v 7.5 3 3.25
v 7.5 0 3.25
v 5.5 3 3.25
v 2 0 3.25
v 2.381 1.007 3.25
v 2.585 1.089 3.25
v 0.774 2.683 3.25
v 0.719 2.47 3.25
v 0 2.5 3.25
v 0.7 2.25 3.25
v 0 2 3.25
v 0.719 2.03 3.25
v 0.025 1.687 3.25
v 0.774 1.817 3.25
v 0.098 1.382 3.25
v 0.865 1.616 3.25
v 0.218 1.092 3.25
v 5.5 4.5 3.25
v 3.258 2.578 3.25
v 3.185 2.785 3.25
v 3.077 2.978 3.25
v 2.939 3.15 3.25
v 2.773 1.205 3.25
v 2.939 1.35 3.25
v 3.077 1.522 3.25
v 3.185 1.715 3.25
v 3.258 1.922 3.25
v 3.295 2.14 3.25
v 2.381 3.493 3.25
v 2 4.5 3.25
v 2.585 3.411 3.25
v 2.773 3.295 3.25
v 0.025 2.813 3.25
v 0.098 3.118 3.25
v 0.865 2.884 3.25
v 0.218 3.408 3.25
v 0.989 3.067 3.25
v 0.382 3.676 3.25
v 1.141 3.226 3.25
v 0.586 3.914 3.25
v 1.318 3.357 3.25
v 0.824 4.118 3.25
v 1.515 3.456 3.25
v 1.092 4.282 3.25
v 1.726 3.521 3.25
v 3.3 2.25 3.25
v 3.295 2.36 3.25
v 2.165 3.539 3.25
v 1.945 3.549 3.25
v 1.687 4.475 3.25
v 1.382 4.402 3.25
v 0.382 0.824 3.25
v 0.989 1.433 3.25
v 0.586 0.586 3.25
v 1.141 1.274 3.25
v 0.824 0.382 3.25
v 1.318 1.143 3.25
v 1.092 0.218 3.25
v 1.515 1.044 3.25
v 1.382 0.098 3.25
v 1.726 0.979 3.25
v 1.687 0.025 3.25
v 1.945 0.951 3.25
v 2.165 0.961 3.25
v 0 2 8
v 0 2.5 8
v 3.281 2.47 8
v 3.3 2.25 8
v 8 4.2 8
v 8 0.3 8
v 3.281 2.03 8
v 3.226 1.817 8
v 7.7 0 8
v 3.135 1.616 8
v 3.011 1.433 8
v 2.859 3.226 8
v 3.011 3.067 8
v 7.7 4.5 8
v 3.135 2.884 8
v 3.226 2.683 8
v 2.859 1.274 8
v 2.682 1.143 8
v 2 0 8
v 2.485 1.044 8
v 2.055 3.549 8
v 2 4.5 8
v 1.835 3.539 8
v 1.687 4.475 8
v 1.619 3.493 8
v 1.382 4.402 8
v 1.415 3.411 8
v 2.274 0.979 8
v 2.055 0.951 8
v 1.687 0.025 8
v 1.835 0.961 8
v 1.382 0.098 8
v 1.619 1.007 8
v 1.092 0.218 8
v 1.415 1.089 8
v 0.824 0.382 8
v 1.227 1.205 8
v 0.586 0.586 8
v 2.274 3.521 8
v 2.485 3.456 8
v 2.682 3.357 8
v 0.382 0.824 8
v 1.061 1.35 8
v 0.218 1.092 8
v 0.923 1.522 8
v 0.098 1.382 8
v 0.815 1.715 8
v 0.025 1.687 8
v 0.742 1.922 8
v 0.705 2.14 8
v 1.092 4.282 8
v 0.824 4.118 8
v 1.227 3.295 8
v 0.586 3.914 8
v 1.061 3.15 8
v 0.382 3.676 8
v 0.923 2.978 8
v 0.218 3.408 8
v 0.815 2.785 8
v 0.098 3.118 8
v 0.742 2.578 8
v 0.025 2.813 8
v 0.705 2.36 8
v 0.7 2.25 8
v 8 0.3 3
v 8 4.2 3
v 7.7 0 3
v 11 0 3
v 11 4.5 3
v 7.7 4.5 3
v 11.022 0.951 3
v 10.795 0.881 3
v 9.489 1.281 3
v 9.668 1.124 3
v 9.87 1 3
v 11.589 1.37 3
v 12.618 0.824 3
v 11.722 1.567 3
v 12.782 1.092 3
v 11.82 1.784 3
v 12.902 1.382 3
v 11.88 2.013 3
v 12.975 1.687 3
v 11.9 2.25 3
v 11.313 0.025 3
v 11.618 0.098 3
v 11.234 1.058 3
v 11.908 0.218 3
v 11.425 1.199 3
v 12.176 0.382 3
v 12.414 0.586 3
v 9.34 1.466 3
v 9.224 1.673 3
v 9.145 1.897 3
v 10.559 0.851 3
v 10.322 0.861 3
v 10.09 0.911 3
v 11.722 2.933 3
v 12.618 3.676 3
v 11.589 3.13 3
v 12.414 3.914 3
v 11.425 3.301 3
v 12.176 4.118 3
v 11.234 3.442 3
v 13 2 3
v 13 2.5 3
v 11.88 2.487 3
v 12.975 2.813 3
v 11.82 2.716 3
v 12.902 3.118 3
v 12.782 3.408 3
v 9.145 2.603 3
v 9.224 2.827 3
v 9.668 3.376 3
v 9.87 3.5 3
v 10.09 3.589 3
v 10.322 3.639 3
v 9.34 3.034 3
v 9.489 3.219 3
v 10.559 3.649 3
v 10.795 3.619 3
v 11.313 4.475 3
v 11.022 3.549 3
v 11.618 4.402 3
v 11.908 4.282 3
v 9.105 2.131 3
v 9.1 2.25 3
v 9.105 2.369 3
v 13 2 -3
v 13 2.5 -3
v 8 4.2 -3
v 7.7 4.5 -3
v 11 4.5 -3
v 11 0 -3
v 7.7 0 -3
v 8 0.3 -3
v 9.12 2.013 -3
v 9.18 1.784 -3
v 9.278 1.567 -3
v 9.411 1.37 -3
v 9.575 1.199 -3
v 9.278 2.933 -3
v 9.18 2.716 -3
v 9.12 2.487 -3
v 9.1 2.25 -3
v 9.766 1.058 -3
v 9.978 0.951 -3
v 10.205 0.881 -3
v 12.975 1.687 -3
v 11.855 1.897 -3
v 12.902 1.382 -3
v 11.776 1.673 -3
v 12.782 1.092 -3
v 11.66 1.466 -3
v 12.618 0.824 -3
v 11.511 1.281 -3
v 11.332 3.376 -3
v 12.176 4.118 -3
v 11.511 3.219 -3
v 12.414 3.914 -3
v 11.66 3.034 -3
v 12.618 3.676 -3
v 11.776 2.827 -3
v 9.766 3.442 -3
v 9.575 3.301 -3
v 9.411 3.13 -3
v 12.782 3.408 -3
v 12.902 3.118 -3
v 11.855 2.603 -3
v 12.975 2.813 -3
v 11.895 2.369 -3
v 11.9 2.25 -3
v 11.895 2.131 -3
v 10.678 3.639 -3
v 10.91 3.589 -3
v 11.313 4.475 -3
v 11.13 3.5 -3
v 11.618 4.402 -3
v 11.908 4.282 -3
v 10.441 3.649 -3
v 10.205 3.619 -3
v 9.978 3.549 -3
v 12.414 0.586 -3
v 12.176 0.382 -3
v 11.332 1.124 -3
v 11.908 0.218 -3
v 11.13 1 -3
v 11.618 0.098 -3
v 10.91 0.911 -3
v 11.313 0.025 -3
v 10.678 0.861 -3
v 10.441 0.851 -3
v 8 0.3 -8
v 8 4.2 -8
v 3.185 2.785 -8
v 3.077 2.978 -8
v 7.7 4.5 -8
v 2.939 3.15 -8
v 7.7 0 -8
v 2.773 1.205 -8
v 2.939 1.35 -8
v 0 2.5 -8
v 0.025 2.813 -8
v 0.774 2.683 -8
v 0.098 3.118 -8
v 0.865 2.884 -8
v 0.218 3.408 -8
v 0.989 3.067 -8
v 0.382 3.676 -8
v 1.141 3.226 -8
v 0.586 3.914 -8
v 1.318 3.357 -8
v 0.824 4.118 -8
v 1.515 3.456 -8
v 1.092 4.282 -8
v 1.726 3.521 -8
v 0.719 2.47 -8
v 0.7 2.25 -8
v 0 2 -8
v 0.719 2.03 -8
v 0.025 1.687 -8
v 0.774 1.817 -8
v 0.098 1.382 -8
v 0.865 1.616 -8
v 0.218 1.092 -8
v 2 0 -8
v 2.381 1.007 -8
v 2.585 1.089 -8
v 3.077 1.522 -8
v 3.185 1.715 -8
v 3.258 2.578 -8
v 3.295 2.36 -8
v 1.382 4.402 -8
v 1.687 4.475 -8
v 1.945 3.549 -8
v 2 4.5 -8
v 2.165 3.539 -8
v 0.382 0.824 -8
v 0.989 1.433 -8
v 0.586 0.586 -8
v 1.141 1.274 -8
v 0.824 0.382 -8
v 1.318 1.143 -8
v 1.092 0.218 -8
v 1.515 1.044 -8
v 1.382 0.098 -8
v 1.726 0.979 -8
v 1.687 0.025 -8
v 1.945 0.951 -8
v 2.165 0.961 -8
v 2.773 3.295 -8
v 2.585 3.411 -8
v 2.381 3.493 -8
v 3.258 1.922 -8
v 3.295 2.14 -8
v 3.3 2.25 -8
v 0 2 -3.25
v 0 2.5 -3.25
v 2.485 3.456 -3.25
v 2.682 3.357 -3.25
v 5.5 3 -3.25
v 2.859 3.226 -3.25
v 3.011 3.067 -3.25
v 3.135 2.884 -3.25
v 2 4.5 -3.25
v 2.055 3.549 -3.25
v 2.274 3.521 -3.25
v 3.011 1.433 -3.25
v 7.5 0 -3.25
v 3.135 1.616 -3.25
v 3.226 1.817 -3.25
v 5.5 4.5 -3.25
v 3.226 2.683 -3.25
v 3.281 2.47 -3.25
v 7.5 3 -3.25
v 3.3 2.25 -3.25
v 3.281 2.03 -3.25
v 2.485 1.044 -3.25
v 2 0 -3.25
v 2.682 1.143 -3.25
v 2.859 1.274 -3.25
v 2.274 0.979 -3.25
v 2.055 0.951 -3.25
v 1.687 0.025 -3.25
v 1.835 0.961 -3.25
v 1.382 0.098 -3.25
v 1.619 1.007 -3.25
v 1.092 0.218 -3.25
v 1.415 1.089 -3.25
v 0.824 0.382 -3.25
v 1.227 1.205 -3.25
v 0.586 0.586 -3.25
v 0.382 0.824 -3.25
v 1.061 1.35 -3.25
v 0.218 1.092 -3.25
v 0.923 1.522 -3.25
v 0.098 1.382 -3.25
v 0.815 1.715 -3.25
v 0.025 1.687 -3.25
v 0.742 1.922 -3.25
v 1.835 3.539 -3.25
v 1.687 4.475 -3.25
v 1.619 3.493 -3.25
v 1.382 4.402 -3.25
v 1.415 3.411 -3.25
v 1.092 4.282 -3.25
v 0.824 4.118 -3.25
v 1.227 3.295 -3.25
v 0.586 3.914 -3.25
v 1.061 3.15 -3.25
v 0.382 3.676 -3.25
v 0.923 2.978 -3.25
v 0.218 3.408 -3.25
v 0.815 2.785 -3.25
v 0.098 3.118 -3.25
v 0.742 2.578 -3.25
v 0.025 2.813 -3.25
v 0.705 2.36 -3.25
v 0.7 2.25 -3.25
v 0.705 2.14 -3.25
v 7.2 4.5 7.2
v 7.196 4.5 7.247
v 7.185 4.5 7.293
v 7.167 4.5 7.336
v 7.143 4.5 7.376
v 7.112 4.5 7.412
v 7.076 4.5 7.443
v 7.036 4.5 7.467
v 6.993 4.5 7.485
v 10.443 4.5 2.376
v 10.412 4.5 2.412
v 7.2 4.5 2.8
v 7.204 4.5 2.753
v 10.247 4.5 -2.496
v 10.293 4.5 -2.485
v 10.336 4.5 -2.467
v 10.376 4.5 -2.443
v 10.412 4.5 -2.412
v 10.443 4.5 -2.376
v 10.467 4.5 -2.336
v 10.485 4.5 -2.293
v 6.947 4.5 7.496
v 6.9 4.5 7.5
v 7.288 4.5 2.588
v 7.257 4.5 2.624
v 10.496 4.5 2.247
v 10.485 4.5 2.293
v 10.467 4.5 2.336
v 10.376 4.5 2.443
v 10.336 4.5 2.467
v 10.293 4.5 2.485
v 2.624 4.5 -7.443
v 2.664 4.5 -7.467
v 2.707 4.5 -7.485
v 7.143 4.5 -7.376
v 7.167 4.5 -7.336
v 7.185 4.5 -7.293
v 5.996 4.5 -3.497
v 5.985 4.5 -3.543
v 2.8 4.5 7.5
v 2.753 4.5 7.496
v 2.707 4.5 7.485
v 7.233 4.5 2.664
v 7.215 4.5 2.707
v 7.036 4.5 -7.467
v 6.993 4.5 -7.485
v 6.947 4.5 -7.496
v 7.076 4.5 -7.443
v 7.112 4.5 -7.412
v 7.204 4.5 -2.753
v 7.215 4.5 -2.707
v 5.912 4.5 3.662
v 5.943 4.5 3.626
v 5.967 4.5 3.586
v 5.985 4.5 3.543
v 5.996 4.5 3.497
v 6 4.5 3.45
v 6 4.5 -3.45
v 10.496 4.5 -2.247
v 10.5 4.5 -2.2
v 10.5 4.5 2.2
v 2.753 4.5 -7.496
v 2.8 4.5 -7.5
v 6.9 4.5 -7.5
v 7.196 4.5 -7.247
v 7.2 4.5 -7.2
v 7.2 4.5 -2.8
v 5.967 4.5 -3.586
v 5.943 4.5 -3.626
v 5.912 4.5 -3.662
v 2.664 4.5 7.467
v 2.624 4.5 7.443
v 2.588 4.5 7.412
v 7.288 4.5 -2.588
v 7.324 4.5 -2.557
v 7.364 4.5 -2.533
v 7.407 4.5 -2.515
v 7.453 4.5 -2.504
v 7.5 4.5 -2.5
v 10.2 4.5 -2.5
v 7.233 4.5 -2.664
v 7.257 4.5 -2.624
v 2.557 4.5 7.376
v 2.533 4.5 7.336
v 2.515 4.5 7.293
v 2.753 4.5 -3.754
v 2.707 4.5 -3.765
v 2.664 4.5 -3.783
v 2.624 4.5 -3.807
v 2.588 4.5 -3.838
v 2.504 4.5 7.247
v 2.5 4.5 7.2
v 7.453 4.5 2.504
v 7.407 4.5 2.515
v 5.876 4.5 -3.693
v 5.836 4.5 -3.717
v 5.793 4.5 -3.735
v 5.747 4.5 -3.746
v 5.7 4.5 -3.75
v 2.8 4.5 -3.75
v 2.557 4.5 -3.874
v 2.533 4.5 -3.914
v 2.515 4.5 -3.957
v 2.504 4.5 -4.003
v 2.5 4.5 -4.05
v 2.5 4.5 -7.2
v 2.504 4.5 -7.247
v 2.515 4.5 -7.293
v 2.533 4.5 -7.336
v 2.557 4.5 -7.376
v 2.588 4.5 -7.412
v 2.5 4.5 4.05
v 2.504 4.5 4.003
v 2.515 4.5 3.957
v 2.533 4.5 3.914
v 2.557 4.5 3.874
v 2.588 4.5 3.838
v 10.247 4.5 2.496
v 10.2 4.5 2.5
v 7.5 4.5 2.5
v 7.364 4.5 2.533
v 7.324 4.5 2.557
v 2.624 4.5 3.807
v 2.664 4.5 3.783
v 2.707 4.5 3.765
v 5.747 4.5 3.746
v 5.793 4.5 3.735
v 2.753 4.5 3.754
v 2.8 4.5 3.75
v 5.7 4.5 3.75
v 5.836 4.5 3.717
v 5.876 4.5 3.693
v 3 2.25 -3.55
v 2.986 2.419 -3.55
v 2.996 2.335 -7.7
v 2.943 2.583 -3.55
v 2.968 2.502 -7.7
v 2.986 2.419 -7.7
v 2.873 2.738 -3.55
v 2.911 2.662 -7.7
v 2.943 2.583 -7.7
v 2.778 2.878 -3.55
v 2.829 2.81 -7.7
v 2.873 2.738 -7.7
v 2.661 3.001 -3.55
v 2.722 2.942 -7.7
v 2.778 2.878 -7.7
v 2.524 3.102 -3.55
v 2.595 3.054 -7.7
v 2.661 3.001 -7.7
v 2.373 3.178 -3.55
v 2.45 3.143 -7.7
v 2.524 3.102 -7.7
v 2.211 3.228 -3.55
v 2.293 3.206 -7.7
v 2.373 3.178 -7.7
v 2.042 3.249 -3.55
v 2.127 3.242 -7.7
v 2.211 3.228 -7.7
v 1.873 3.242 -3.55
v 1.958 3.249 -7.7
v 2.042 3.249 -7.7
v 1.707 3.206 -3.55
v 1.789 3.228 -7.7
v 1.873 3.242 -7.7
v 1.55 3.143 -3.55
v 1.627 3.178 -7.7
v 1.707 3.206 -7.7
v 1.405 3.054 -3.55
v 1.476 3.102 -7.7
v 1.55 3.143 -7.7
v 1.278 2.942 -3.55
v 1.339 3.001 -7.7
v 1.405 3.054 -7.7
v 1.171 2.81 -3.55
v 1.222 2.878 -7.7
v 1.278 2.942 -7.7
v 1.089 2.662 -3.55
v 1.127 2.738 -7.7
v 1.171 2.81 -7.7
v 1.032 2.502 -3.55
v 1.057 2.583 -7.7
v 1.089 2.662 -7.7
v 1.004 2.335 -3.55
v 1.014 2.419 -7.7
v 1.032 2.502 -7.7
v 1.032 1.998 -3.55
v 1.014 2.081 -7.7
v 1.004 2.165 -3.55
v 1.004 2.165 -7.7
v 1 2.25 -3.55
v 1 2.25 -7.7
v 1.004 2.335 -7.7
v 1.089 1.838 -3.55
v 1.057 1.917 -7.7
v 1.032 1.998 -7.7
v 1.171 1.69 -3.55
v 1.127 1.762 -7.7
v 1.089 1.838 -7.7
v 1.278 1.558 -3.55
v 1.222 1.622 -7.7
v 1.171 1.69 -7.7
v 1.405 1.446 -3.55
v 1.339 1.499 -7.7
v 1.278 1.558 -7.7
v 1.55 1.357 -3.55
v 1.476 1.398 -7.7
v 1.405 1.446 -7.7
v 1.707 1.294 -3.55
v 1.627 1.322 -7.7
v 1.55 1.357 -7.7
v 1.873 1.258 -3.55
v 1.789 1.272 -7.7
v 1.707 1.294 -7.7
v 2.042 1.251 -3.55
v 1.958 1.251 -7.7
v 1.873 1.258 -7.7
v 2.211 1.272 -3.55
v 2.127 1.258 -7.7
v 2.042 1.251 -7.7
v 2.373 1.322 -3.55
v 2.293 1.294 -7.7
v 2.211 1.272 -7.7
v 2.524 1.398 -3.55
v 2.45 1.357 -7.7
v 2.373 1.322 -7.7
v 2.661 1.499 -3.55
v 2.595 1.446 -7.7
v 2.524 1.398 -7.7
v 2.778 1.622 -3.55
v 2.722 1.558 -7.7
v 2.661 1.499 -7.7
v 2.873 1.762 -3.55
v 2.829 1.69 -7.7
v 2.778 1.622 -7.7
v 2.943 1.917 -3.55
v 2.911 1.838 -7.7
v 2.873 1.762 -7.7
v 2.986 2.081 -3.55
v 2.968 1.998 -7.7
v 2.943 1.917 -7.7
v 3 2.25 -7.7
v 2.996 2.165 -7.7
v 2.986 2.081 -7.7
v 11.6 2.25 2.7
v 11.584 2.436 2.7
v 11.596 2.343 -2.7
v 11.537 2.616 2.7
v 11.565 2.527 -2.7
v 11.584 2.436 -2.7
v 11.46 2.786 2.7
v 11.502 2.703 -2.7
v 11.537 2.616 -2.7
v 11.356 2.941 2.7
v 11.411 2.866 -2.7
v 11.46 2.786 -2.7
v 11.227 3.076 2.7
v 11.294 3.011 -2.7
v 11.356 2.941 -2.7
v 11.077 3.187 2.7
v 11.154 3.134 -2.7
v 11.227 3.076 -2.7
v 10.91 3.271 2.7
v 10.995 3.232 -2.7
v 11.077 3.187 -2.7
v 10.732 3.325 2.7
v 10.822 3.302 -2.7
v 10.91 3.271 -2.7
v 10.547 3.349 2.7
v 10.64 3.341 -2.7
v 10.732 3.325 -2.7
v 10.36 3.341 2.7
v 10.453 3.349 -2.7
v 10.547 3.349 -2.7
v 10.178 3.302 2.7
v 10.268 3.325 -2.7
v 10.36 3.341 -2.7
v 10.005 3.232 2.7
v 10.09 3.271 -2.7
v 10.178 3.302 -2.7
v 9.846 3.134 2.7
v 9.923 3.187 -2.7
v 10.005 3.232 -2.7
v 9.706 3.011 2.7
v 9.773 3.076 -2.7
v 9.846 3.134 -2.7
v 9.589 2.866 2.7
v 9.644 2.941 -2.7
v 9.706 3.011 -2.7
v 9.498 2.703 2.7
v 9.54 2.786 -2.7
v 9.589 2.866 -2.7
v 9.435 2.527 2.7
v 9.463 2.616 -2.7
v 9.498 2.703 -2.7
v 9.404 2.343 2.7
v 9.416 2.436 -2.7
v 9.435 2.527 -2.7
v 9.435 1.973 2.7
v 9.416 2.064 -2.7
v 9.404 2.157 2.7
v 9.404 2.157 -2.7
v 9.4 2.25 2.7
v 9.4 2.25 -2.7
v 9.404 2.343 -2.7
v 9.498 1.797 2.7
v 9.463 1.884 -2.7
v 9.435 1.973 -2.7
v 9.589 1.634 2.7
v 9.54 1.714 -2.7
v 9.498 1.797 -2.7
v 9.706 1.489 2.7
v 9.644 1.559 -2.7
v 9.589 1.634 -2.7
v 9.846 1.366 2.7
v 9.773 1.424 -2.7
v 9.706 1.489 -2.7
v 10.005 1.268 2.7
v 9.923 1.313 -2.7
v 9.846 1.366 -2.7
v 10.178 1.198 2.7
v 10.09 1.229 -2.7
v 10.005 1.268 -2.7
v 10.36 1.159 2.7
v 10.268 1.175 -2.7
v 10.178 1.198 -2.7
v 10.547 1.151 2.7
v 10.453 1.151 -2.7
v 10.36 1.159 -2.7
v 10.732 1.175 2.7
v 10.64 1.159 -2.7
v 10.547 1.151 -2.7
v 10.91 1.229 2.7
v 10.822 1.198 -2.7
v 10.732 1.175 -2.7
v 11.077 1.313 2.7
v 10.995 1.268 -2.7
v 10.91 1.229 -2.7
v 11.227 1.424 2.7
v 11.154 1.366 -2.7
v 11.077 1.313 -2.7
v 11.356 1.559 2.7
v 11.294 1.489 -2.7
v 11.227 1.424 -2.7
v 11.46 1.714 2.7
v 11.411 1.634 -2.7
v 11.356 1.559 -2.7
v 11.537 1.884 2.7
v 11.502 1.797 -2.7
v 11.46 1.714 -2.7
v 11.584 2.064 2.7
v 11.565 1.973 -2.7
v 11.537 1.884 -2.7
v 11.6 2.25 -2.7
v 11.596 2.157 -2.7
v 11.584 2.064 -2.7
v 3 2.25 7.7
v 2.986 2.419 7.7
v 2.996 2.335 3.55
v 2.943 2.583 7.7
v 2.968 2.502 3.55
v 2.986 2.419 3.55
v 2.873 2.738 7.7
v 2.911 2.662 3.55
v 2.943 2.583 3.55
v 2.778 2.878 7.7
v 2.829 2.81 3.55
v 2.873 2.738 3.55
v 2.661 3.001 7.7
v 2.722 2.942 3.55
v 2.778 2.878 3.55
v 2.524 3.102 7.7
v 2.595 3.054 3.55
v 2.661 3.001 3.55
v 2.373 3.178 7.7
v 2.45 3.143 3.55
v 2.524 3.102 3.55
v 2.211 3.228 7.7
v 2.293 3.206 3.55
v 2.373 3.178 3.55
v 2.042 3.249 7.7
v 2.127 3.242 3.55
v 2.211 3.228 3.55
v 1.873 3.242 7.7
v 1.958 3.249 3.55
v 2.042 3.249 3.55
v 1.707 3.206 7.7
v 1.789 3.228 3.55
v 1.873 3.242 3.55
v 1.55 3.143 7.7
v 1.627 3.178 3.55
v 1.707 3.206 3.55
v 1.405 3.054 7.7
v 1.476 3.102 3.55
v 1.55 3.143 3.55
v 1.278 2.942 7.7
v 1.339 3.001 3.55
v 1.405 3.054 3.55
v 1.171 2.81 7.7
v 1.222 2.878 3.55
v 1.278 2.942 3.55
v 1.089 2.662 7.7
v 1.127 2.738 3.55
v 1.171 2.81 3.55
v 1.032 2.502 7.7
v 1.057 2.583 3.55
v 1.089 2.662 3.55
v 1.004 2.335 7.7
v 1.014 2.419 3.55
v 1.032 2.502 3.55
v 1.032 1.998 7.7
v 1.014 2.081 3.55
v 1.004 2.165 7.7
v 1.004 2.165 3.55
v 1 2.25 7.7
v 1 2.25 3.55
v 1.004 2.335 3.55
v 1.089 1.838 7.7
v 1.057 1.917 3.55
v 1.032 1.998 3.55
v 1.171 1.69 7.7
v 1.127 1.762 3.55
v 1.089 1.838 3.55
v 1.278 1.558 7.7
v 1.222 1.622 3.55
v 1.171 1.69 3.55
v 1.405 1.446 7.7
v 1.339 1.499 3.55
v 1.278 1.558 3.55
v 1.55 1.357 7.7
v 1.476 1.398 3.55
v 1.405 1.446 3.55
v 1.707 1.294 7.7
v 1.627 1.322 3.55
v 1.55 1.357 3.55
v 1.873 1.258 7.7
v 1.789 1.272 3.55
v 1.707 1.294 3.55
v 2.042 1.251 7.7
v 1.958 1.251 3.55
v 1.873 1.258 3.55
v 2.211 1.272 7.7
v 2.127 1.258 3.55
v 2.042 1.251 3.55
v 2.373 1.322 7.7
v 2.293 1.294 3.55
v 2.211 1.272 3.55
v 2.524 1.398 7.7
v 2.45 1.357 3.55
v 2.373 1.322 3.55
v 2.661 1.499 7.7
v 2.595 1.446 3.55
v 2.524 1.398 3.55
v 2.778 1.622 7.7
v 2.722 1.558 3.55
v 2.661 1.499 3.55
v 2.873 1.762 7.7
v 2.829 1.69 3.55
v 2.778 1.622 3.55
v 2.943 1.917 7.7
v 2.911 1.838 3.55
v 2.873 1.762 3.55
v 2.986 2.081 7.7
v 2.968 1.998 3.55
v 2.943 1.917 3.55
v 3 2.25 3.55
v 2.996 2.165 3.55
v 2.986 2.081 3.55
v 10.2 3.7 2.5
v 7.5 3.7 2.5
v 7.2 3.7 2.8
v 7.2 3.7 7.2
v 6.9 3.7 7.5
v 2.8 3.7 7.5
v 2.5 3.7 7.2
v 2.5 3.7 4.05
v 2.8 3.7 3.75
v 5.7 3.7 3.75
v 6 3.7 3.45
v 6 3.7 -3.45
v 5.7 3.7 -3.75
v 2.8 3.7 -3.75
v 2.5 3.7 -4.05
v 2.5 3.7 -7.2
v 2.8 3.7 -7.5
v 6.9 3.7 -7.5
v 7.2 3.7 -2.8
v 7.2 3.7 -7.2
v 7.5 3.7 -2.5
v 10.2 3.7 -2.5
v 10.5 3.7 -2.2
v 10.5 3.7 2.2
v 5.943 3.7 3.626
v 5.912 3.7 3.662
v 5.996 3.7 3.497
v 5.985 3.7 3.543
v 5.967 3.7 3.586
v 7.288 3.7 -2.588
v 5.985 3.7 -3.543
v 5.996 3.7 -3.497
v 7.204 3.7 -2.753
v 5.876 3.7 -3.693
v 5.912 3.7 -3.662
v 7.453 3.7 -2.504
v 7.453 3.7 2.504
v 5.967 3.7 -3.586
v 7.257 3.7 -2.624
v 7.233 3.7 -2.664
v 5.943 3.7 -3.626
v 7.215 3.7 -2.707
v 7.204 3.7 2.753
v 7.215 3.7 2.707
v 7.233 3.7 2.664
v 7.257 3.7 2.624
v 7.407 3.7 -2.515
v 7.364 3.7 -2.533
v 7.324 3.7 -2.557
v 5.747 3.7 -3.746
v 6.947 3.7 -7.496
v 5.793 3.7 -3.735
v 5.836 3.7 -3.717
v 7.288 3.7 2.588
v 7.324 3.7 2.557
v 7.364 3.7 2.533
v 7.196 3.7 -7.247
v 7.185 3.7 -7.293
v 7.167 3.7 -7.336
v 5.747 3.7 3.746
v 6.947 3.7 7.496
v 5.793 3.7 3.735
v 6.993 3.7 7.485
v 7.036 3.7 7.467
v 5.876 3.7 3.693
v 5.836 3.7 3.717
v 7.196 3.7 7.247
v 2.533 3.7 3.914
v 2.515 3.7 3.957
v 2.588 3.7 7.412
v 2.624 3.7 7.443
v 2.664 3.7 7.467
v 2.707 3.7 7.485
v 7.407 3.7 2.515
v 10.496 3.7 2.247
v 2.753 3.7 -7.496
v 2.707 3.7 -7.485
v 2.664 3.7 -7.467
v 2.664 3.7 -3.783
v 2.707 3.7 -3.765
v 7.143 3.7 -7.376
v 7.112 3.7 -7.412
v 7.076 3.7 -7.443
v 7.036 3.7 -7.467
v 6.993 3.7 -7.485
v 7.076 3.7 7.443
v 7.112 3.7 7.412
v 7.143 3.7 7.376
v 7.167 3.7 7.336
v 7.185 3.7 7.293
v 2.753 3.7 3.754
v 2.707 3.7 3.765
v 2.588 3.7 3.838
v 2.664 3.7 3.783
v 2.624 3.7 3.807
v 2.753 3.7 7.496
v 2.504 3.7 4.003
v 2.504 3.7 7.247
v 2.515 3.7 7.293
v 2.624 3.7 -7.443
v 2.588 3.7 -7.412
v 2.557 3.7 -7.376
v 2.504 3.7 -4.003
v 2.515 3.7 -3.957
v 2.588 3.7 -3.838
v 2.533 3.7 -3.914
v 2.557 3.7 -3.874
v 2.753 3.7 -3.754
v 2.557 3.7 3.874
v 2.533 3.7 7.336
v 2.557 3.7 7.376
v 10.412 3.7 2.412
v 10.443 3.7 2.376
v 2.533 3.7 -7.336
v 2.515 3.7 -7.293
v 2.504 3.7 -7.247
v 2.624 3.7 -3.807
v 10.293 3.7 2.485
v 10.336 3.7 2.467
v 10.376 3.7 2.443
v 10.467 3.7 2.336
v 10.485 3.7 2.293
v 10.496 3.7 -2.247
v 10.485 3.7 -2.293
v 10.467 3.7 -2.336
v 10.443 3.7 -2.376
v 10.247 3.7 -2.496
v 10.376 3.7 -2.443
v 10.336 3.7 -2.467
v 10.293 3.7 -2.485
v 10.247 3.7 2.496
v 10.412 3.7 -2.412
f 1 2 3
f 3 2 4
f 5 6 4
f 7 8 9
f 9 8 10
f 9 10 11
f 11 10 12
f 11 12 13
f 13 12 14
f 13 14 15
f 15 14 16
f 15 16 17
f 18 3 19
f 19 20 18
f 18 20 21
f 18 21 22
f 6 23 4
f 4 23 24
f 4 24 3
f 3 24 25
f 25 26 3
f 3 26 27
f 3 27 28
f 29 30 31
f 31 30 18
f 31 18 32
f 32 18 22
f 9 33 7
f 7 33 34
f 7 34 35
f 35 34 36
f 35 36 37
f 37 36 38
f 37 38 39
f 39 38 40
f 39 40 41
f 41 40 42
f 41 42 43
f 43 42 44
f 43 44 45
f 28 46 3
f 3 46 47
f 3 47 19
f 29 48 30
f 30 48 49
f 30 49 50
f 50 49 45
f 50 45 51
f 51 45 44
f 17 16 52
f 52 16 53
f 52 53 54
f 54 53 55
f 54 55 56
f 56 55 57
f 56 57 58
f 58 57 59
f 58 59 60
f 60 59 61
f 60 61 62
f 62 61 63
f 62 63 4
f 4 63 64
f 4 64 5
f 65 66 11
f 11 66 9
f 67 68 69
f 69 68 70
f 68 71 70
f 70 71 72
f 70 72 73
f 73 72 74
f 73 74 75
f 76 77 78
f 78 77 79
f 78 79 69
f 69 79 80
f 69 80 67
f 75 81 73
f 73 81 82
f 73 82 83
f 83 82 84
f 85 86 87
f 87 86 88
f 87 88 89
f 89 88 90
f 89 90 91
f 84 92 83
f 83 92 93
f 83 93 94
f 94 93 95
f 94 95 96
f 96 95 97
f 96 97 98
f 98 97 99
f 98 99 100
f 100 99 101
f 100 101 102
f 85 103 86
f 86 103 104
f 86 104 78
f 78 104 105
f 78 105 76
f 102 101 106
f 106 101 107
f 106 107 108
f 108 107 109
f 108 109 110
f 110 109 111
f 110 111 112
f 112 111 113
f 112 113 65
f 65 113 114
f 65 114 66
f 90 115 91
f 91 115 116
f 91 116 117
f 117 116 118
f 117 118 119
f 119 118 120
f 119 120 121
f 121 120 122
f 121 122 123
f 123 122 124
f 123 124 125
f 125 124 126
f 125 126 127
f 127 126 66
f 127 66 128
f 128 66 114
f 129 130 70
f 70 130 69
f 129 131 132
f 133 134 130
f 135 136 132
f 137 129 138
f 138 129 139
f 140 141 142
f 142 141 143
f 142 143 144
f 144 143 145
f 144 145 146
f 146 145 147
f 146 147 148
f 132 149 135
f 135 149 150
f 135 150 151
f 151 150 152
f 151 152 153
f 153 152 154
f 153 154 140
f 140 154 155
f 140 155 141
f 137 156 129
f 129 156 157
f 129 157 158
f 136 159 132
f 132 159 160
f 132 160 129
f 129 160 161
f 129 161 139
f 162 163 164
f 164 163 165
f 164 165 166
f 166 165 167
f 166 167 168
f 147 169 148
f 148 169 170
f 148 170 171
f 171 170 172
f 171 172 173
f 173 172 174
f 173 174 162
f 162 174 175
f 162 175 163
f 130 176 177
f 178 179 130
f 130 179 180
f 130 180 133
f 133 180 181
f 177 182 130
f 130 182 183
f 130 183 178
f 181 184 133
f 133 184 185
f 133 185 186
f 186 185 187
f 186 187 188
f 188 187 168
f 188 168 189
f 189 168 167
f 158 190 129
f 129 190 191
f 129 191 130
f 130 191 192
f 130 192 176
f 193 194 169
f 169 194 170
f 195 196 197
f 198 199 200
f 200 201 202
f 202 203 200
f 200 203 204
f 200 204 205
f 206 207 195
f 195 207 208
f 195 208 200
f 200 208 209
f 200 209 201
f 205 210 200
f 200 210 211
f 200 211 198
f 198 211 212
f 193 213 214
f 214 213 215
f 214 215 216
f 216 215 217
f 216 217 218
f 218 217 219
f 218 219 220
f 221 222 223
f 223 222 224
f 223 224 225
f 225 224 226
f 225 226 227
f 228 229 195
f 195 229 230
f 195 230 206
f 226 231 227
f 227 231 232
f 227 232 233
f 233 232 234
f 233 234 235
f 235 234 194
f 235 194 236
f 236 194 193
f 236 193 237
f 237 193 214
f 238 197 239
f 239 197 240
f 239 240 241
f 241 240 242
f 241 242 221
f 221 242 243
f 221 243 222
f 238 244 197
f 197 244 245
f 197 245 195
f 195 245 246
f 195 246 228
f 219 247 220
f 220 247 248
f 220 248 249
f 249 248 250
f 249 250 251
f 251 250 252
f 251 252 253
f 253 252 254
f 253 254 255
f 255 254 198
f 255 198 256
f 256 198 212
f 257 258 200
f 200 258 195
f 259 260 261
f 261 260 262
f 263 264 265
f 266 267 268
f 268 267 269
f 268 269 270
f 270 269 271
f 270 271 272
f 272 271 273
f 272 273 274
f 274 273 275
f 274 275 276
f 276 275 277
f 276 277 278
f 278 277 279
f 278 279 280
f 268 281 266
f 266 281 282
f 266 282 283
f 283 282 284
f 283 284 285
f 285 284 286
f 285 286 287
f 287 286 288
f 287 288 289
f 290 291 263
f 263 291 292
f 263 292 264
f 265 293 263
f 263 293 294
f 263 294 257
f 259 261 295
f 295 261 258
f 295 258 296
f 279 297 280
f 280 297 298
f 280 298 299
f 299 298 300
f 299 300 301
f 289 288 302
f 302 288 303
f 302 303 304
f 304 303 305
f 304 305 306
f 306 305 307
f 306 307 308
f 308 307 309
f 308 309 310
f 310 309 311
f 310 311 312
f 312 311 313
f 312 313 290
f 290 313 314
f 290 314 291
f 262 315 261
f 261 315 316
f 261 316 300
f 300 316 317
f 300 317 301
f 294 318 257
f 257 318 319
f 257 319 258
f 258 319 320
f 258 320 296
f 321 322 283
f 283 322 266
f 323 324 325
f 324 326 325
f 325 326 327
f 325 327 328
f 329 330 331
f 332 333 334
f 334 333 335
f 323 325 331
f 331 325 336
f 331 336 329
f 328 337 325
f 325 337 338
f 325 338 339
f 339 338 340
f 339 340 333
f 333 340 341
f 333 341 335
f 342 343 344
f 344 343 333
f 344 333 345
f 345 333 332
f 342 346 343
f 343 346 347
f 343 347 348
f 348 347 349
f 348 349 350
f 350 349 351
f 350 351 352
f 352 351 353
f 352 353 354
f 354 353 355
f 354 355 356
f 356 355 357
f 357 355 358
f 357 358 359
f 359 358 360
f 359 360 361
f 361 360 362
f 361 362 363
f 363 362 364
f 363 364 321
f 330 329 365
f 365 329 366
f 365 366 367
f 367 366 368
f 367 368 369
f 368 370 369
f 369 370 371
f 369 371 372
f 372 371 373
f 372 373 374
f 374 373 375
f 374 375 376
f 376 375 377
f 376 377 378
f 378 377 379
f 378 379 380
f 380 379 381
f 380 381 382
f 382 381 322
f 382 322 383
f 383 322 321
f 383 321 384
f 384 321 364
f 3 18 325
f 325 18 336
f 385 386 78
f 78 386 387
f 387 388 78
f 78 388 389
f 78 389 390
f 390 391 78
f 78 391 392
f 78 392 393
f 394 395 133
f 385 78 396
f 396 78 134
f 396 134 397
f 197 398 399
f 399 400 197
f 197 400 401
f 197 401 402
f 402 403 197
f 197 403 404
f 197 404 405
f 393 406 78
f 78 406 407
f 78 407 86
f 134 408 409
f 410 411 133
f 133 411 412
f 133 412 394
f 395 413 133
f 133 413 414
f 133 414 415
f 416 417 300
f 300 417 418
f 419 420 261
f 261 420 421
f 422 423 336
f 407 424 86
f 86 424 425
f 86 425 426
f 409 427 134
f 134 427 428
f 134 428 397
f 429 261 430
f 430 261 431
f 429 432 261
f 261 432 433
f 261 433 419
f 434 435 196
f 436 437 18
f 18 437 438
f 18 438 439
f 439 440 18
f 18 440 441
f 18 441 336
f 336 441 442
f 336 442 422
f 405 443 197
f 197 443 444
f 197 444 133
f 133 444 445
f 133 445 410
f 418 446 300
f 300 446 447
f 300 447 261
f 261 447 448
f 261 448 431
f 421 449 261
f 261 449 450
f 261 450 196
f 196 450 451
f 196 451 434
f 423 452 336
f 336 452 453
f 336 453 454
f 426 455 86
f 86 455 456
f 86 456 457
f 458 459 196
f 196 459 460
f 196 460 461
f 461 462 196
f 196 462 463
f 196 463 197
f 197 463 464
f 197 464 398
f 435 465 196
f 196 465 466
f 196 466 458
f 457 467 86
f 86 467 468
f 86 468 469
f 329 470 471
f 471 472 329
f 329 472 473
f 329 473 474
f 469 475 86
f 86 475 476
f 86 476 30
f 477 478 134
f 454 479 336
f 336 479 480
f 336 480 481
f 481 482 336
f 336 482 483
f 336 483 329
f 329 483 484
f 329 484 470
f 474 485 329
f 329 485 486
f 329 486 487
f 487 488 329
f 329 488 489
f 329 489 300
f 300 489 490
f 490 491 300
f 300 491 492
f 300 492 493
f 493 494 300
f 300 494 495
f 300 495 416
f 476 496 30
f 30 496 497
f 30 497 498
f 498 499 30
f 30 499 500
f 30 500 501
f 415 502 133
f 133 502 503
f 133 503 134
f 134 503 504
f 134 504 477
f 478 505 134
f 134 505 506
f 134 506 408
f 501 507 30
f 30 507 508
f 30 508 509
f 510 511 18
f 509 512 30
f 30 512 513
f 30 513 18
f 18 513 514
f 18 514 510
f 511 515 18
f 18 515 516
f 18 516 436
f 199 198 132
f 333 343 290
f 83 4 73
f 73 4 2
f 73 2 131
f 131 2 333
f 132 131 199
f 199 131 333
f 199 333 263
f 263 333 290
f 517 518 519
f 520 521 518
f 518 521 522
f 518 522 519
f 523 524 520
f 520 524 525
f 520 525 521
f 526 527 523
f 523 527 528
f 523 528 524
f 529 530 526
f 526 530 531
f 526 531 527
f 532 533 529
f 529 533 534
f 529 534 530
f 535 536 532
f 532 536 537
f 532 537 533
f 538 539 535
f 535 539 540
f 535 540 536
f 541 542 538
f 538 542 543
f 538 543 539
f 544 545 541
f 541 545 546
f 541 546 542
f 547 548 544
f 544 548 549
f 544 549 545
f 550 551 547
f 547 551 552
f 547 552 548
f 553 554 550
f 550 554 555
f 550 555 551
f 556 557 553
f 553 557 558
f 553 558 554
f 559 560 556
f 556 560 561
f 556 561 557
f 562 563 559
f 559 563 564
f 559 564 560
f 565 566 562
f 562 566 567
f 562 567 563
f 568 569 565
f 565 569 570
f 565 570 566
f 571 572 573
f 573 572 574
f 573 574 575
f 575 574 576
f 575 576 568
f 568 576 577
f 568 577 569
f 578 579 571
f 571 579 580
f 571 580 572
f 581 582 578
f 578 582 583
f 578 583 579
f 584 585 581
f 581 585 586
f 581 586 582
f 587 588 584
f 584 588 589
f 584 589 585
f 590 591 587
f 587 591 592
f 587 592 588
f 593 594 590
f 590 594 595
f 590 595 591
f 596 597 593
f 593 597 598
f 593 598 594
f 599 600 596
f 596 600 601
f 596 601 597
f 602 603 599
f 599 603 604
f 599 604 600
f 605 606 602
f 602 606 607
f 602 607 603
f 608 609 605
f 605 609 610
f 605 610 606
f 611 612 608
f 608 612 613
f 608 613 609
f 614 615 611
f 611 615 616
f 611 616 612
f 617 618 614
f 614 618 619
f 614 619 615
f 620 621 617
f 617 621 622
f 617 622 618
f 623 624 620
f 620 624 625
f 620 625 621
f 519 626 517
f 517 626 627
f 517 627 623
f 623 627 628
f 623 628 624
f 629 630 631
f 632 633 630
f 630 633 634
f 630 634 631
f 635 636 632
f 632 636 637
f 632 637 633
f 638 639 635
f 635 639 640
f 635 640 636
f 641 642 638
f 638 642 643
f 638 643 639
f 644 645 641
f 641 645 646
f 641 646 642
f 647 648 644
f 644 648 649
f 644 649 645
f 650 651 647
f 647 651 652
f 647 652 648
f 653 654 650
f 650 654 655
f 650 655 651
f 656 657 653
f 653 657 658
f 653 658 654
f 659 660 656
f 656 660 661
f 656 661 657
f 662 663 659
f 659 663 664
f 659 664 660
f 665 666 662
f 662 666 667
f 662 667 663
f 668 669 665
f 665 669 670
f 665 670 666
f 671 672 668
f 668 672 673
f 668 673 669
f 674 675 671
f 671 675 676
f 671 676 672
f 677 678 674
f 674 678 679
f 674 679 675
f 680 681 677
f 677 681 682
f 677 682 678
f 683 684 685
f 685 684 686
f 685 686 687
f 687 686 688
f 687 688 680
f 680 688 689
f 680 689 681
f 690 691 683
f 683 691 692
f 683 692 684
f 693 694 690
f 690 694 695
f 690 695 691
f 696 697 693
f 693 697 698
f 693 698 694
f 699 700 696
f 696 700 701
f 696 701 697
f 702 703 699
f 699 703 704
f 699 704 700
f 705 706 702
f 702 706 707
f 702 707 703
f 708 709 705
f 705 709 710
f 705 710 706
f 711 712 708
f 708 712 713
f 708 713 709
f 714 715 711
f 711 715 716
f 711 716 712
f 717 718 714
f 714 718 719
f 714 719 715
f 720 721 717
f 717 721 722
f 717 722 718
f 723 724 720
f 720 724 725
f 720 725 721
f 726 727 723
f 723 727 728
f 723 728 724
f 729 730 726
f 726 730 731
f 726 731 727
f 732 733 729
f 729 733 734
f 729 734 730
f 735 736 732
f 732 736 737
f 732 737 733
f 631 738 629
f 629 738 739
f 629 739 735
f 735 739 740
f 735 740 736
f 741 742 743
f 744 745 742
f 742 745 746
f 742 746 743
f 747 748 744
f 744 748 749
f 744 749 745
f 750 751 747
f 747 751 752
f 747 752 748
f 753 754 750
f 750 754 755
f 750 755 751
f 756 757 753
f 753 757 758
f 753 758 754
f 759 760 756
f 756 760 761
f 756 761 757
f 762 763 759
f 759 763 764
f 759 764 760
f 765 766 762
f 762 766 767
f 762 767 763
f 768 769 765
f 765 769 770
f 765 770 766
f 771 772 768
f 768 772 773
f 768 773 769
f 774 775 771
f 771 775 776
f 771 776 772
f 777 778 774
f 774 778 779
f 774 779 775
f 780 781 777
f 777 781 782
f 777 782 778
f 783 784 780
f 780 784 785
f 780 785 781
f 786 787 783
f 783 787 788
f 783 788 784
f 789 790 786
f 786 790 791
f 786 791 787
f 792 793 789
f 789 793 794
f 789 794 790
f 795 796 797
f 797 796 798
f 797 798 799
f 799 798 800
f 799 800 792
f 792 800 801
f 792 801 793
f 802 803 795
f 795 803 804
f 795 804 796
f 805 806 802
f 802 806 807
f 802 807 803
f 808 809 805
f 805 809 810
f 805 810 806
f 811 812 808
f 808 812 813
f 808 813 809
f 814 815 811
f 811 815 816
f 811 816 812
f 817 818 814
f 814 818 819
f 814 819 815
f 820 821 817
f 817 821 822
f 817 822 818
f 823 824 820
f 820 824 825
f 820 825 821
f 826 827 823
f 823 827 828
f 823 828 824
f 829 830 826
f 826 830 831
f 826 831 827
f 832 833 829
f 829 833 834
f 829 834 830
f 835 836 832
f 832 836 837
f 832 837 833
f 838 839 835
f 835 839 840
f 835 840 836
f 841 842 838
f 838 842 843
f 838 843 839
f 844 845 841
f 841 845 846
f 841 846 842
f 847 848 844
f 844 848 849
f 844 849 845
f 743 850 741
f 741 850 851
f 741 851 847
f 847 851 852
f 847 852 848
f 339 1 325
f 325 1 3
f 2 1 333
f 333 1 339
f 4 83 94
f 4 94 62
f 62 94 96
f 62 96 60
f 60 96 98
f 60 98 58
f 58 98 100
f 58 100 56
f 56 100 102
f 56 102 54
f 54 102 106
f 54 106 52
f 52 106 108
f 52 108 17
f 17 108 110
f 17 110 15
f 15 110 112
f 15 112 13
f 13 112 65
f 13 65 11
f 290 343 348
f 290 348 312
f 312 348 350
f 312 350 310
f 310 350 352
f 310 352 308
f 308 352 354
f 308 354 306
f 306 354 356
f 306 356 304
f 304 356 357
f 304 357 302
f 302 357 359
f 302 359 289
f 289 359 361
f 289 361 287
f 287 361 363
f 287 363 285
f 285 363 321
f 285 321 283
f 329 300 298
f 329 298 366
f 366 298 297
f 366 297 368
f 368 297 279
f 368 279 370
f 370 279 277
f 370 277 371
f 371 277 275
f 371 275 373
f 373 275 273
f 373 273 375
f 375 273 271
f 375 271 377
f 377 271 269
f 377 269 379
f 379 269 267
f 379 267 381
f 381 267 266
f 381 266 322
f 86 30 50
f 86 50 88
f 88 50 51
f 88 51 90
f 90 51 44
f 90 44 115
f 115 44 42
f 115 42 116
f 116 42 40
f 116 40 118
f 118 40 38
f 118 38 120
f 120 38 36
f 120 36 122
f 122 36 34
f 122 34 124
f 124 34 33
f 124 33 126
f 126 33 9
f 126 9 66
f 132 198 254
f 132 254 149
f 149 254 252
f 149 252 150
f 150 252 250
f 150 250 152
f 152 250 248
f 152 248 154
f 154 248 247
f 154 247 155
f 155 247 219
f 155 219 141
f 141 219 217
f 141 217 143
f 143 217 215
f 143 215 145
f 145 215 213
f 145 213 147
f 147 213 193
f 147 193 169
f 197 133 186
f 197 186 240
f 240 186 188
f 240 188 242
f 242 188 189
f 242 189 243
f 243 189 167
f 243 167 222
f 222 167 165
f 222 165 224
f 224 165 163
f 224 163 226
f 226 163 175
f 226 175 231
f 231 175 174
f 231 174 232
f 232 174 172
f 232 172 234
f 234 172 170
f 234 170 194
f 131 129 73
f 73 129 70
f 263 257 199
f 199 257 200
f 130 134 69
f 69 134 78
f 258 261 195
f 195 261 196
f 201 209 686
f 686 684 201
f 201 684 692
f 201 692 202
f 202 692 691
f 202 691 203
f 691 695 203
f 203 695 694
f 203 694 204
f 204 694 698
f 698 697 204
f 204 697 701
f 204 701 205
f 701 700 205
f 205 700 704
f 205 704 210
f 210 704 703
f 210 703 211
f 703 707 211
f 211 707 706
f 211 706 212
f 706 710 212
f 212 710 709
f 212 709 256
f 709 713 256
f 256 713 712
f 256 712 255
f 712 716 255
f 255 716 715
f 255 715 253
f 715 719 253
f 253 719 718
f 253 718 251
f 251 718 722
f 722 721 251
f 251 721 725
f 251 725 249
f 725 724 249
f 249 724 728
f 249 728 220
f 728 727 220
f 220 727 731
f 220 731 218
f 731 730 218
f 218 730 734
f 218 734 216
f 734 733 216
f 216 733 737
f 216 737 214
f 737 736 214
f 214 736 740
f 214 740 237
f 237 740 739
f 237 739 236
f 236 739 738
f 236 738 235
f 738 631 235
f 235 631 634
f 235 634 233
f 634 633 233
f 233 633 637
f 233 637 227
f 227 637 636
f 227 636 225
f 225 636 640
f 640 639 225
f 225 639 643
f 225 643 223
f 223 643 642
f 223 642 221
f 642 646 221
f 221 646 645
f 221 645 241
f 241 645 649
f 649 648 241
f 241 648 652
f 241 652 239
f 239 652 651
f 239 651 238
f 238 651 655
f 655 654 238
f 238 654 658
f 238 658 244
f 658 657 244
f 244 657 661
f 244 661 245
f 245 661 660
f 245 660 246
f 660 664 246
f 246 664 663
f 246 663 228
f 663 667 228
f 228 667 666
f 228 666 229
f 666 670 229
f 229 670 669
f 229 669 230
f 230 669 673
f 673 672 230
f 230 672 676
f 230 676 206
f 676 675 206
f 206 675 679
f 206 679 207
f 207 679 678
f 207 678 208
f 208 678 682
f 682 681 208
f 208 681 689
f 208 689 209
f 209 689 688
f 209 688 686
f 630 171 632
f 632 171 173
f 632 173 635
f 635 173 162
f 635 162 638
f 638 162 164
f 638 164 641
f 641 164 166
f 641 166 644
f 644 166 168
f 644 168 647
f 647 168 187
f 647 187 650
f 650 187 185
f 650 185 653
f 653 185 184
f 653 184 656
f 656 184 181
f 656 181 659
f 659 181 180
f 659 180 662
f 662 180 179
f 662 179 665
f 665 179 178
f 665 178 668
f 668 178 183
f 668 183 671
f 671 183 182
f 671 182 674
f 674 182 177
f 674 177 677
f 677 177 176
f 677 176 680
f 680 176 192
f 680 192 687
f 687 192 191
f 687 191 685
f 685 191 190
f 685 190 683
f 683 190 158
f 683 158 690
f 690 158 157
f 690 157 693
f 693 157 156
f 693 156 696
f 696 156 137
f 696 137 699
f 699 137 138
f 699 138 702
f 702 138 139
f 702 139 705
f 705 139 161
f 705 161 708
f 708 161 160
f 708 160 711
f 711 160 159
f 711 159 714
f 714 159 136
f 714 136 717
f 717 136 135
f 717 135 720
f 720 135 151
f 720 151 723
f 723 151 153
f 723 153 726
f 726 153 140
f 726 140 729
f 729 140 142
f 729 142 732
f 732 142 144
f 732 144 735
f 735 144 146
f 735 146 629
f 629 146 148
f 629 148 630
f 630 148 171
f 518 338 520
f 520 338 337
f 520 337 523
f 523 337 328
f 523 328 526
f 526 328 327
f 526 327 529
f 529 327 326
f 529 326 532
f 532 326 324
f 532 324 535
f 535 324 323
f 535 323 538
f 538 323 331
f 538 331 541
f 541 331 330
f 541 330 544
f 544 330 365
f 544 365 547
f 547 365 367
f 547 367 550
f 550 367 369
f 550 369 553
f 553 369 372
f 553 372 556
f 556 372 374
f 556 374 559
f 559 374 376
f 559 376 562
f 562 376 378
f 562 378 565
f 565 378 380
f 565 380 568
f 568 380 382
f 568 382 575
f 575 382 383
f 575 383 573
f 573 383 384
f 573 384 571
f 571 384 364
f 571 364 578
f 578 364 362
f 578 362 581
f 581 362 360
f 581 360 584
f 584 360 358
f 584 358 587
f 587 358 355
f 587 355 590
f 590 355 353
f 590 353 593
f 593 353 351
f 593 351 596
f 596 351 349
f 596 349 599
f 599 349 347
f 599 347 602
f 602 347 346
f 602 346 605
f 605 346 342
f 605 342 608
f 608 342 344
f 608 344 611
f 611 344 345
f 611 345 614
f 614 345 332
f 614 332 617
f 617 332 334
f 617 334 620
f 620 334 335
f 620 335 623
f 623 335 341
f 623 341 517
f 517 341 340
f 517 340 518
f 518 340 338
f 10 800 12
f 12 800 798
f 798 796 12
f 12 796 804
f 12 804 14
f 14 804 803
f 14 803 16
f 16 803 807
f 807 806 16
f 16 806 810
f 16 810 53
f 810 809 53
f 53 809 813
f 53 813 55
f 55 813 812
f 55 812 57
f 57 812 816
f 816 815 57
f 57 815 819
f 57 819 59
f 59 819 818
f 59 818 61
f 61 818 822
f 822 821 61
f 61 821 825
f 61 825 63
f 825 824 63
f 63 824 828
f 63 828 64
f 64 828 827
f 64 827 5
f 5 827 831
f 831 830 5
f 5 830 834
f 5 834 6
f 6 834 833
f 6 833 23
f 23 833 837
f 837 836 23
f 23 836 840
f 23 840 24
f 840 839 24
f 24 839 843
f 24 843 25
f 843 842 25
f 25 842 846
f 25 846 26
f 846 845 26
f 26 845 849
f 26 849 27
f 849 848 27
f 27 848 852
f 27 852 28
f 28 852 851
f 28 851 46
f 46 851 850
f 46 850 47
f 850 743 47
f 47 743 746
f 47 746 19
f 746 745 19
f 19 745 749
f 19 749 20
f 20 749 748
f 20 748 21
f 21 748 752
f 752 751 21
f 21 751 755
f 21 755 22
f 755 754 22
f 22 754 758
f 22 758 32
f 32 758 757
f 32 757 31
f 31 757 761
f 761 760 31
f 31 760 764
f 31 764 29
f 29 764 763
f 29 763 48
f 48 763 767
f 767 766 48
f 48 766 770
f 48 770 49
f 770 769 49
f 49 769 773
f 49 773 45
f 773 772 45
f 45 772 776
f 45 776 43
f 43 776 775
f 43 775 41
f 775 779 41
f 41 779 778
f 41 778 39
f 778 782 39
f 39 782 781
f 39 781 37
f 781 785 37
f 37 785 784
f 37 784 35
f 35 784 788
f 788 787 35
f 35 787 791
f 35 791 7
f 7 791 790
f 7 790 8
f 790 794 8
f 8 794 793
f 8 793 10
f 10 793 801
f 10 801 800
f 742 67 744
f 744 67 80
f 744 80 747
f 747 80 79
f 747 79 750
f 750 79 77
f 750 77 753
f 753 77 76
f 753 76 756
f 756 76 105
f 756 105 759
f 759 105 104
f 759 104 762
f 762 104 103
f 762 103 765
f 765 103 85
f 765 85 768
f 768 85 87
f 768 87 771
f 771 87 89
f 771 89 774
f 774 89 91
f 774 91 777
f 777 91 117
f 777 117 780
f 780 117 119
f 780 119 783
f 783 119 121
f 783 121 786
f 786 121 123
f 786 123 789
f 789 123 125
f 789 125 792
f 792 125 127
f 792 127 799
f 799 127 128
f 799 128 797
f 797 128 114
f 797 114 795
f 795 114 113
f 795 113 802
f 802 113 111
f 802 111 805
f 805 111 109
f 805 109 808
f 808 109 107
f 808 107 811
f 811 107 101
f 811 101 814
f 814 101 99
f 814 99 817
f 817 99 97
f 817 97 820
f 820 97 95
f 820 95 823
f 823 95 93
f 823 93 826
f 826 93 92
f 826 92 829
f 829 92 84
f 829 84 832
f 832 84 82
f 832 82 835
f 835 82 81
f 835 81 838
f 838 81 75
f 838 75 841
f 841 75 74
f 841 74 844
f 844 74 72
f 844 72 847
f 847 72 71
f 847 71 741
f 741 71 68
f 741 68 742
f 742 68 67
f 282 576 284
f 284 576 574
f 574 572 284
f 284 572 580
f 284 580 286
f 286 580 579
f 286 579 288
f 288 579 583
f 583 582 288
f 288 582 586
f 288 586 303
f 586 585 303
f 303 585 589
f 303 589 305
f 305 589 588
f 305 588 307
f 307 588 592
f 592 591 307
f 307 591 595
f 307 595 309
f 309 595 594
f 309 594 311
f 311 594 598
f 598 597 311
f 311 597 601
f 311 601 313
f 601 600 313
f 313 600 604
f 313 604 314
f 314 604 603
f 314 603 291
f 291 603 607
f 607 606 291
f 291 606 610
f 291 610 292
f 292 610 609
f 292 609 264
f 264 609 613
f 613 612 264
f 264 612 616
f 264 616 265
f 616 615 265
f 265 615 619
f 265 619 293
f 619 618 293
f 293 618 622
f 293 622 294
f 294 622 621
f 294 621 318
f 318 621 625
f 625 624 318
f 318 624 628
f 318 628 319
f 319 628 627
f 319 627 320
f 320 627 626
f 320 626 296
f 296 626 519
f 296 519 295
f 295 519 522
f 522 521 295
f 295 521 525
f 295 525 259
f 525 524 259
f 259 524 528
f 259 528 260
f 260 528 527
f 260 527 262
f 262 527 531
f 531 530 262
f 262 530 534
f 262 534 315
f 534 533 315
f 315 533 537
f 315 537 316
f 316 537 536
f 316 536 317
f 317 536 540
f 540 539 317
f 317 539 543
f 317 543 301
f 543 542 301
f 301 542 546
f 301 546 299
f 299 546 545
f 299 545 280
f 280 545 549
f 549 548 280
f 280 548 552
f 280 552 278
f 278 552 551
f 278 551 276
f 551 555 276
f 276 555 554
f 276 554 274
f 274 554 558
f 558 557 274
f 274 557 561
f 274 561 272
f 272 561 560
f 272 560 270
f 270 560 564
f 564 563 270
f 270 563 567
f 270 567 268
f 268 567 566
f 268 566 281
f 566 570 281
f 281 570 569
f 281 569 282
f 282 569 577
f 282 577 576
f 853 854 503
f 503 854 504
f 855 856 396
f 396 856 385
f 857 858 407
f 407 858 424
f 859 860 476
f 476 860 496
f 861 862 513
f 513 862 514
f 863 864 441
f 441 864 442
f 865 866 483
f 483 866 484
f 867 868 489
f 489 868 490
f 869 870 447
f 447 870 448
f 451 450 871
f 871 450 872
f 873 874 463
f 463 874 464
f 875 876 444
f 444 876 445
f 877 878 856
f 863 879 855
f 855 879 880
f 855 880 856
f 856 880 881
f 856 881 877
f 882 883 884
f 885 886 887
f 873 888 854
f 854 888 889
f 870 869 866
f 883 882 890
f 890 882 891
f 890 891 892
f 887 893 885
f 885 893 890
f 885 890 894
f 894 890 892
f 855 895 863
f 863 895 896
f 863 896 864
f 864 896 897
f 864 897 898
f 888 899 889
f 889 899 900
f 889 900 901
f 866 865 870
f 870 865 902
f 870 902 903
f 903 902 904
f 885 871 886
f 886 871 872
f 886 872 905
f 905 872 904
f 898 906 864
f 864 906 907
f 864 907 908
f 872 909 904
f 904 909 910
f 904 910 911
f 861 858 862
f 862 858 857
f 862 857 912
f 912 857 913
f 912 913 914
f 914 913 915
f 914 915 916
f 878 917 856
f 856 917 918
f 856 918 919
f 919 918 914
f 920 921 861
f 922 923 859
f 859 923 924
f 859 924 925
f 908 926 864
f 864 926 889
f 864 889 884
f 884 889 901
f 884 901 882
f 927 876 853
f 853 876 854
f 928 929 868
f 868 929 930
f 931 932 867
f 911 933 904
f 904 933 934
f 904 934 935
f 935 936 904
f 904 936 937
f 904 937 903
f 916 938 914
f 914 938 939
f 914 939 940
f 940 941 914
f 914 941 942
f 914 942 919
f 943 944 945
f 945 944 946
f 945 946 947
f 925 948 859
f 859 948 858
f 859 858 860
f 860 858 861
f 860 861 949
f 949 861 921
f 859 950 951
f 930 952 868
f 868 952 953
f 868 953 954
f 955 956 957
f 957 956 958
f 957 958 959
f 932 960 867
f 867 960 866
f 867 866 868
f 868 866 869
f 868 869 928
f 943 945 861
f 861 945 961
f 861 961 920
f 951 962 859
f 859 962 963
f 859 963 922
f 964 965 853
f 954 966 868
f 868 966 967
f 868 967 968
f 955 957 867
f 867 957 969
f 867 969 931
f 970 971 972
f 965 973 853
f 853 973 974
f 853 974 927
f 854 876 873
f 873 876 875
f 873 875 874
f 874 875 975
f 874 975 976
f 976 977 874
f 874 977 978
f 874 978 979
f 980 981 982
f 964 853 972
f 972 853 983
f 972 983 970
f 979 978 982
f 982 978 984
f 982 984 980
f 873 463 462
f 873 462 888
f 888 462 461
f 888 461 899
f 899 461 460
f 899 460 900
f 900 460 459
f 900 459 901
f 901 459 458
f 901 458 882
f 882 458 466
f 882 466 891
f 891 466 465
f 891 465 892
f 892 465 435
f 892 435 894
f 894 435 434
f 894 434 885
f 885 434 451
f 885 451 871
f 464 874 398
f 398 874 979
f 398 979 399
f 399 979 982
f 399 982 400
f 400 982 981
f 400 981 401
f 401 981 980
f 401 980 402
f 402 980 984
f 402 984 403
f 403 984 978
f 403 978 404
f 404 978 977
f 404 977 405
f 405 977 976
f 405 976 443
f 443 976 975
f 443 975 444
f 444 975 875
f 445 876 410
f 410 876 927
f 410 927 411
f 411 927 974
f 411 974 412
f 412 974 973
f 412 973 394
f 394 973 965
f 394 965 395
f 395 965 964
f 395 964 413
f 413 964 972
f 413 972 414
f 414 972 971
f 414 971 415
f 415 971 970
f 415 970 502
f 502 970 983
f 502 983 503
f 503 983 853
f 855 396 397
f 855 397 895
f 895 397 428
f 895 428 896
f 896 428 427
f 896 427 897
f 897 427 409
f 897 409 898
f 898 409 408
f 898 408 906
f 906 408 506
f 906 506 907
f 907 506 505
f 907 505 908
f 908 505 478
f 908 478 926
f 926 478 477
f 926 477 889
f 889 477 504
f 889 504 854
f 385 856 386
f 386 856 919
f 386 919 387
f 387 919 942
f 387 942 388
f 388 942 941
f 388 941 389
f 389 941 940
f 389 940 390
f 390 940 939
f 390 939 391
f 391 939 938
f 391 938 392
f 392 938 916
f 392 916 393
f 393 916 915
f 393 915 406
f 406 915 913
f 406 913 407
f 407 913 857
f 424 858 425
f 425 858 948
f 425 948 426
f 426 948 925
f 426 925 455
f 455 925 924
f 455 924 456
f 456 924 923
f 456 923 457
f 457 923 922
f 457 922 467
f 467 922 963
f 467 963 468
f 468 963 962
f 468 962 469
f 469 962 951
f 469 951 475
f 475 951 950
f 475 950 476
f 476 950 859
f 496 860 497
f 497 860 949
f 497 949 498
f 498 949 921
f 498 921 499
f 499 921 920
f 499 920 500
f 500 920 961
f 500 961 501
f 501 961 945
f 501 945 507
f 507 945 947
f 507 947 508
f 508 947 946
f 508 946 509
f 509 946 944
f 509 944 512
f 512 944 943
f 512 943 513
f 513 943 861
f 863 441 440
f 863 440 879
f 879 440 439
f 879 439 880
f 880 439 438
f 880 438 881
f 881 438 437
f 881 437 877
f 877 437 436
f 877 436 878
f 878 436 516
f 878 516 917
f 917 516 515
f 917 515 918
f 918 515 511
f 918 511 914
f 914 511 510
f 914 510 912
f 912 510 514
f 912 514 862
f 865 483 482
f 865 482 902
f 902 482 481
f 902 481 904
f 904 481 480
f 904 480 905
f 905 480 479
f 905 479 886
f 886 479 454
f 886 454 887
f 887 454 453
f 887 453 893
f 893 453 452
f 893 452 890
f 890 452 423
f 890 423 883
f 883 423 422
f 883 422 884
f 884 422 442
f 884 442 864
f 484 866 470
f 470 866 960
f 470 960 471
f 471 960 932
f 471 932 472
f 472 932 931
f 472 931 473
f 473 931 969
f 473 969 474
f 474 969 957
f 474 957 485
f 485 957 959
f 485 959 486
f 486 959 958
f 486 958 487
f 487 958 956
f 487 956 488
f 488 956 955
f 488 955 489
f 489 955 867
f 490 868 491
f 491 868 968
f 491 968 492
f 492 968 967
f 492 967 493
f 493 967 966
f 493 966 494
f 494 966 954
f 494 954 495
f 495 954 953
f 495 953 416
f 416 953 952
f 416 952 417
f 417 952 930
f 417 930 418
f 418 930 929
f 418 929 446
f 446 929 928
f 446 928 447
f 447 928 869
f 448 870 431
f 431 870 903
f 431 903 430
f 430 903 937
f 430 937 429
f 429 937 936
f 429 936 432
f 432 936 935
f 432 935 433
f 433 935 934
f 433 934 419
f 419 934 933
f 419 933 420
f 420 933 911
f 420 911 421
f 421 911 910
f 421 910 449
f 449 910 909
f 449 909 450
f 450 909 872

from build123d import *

# Parameters (mm, degrees)
GRUNDK_RPER_DEPTH         = 4.5
ACHSBOHHRUNGEN_DEPTH      = 16.913830463
ACHSBOHHRUNGEN_DEPTH_BACK = 16.913830463
SKIZZE2_R                 = 1
SKIZZE2_R_2               = 1.1
SKIZZE3_W                 = 2
SKIZZE3_H                 = 6.5
AUSSCHNITT_ZAHN_DEPTH     = 3
VERRUNDUNG2_R             = 2
FASE1_SIZE                = 0.3
FASE2_SIZE                = 0.3
MOOSGUMMIVERTIEFUNG_DEPTH = 0.8
VERRUNDUNG8_R             = 0.3


with BuildPart() as part:
    # Skizze1 → Grundkörper (new body)
    with BuildSketch(Plane(origin=(0, 0, 0), x_dir=(1, 0, 0), z_dir=(0, 1, 0))):
        Polygon((5.5, 3.25), (5.5, -3.25), (0, -3.25), (0, -8), (8, -8), (8, -3), (13, -3), (13, 3), (8, 3), (8, 8), (0, 8), (0, 3.25), align=None)
    extrude(amount=GRUNDK_RPER_DEPTH)

    # Skizze2 → Achsbohhrungen (cut, two sides: drawn at the far end of the back side and taken through both)
    with BuildSketch(Plane.XY.offset(-ACHSBOHHRUNGEN_DEPTH_BACK)):
        with Locations((2, 2.25)):
            Circle(SKIZZE2_R)
        with Locations((10.5, 2.25)):
            Circle(SKIZZE2_R_2)
    extrude(amount=ACHSBOHHRUNGEN_DEPTH + ACHSBOHHRUNGEN_DEPTH_BACK, mode=Mode.SUBTRACT)

    # Skizze3 → Ausschnitt Zahn (cut)
    with BuildSketch(Plane.XZ):
        with Locations((6.5, 0)):
            Rectangle(SKIZZE3_W, SKIZZE3_H)
    extrude(amount=-AUSSCHNITT_ZAHN_DEPTH, mode=Mode.SUBTRACT)

    # Verrundung2
    verrundung2_edges = [part.edges().sort_by_distance(p)[0] for p in [
        (0, 0, -5.625),
        (13, 0, 0),
        (0, 0, 5.625),
        (13, 4.5, 0),
        (0, 4.5, -5.625),
        (0, 4.5, 5.625),
    ]]
    fillet(verrundung2_edges, radius=VERRUNDUNG2_R)

    # Fase1
    fase1_edges = [part.edges().sort_by_distance(p)[0] for p in [
        (8, 0, -5.5),
        (8, 4.5, 5.5),
        (8, 0, 5.5),
        (8, 4.5, -5.5),
    ]]
    chamfer(fase1_edges, length=FASE1_SIZE)

    # Fase2
    fase2_edges = [part.edges().sort_by_distance(p)[0] for p in [
        (1, 2.25, 3.25),
        (1, 2.25, -8),
        (1, 2.25, -3.25),
        (1, 2.25, 8),
        (9.4, 2.25, -3),
        (9.4, 2.25, 3),
    ]]
    chamfer(fase2_edges, length=FASE2_SIZE)

    # Skizze6 → MoosgummiVertiefung (cut)
    with BuildSketch(Plane(origin=(0, 4.5, 0), x_dir=(1, 0, 0), z_dir=(0, 1, 0))):
        Polygon((10.5, -2.5), (10.5, 2.5), (7.2, 2.5), (7.2, 7.5), (2.5, 7.5), (2.5, 3.75), (6, 3.75), (6, -3.75), (2.5, -3.75), (2.5, -7.5), (7.2, -7.5), (7.2, -2.5), align=None)
    extrude(amount=-MOOSGUMMIVERTIEFUNG_DEPTH, mode=Mode.SUBTRACT)

    # Verrundung8
    verrundung8_edges = [part.edges().sort_by_distance(p)[0] for p in [
        (10.5, 4.1, 2.5),
        (7.2, 4.1, 2.5),
        (7.2, 4.1, 7.5),
        (2.5, 4.1, 7.5),
        (2.5, 4.1, 3.75),
        (6, 4.1, 3.75),
        (6, 4.1, -3.75),
        (2.5, 4.1, -3.75),
        (2.5, 4.1, -7.5),
        (7.2, 4.1, -7.5),
        (7.2, 4.1, -2.5),
        (10.5, 4.1, -2.5),
    ]]
    fillet(verrundung8_edges, radius=VERRUNDUNG8_R)


solid = part.part
